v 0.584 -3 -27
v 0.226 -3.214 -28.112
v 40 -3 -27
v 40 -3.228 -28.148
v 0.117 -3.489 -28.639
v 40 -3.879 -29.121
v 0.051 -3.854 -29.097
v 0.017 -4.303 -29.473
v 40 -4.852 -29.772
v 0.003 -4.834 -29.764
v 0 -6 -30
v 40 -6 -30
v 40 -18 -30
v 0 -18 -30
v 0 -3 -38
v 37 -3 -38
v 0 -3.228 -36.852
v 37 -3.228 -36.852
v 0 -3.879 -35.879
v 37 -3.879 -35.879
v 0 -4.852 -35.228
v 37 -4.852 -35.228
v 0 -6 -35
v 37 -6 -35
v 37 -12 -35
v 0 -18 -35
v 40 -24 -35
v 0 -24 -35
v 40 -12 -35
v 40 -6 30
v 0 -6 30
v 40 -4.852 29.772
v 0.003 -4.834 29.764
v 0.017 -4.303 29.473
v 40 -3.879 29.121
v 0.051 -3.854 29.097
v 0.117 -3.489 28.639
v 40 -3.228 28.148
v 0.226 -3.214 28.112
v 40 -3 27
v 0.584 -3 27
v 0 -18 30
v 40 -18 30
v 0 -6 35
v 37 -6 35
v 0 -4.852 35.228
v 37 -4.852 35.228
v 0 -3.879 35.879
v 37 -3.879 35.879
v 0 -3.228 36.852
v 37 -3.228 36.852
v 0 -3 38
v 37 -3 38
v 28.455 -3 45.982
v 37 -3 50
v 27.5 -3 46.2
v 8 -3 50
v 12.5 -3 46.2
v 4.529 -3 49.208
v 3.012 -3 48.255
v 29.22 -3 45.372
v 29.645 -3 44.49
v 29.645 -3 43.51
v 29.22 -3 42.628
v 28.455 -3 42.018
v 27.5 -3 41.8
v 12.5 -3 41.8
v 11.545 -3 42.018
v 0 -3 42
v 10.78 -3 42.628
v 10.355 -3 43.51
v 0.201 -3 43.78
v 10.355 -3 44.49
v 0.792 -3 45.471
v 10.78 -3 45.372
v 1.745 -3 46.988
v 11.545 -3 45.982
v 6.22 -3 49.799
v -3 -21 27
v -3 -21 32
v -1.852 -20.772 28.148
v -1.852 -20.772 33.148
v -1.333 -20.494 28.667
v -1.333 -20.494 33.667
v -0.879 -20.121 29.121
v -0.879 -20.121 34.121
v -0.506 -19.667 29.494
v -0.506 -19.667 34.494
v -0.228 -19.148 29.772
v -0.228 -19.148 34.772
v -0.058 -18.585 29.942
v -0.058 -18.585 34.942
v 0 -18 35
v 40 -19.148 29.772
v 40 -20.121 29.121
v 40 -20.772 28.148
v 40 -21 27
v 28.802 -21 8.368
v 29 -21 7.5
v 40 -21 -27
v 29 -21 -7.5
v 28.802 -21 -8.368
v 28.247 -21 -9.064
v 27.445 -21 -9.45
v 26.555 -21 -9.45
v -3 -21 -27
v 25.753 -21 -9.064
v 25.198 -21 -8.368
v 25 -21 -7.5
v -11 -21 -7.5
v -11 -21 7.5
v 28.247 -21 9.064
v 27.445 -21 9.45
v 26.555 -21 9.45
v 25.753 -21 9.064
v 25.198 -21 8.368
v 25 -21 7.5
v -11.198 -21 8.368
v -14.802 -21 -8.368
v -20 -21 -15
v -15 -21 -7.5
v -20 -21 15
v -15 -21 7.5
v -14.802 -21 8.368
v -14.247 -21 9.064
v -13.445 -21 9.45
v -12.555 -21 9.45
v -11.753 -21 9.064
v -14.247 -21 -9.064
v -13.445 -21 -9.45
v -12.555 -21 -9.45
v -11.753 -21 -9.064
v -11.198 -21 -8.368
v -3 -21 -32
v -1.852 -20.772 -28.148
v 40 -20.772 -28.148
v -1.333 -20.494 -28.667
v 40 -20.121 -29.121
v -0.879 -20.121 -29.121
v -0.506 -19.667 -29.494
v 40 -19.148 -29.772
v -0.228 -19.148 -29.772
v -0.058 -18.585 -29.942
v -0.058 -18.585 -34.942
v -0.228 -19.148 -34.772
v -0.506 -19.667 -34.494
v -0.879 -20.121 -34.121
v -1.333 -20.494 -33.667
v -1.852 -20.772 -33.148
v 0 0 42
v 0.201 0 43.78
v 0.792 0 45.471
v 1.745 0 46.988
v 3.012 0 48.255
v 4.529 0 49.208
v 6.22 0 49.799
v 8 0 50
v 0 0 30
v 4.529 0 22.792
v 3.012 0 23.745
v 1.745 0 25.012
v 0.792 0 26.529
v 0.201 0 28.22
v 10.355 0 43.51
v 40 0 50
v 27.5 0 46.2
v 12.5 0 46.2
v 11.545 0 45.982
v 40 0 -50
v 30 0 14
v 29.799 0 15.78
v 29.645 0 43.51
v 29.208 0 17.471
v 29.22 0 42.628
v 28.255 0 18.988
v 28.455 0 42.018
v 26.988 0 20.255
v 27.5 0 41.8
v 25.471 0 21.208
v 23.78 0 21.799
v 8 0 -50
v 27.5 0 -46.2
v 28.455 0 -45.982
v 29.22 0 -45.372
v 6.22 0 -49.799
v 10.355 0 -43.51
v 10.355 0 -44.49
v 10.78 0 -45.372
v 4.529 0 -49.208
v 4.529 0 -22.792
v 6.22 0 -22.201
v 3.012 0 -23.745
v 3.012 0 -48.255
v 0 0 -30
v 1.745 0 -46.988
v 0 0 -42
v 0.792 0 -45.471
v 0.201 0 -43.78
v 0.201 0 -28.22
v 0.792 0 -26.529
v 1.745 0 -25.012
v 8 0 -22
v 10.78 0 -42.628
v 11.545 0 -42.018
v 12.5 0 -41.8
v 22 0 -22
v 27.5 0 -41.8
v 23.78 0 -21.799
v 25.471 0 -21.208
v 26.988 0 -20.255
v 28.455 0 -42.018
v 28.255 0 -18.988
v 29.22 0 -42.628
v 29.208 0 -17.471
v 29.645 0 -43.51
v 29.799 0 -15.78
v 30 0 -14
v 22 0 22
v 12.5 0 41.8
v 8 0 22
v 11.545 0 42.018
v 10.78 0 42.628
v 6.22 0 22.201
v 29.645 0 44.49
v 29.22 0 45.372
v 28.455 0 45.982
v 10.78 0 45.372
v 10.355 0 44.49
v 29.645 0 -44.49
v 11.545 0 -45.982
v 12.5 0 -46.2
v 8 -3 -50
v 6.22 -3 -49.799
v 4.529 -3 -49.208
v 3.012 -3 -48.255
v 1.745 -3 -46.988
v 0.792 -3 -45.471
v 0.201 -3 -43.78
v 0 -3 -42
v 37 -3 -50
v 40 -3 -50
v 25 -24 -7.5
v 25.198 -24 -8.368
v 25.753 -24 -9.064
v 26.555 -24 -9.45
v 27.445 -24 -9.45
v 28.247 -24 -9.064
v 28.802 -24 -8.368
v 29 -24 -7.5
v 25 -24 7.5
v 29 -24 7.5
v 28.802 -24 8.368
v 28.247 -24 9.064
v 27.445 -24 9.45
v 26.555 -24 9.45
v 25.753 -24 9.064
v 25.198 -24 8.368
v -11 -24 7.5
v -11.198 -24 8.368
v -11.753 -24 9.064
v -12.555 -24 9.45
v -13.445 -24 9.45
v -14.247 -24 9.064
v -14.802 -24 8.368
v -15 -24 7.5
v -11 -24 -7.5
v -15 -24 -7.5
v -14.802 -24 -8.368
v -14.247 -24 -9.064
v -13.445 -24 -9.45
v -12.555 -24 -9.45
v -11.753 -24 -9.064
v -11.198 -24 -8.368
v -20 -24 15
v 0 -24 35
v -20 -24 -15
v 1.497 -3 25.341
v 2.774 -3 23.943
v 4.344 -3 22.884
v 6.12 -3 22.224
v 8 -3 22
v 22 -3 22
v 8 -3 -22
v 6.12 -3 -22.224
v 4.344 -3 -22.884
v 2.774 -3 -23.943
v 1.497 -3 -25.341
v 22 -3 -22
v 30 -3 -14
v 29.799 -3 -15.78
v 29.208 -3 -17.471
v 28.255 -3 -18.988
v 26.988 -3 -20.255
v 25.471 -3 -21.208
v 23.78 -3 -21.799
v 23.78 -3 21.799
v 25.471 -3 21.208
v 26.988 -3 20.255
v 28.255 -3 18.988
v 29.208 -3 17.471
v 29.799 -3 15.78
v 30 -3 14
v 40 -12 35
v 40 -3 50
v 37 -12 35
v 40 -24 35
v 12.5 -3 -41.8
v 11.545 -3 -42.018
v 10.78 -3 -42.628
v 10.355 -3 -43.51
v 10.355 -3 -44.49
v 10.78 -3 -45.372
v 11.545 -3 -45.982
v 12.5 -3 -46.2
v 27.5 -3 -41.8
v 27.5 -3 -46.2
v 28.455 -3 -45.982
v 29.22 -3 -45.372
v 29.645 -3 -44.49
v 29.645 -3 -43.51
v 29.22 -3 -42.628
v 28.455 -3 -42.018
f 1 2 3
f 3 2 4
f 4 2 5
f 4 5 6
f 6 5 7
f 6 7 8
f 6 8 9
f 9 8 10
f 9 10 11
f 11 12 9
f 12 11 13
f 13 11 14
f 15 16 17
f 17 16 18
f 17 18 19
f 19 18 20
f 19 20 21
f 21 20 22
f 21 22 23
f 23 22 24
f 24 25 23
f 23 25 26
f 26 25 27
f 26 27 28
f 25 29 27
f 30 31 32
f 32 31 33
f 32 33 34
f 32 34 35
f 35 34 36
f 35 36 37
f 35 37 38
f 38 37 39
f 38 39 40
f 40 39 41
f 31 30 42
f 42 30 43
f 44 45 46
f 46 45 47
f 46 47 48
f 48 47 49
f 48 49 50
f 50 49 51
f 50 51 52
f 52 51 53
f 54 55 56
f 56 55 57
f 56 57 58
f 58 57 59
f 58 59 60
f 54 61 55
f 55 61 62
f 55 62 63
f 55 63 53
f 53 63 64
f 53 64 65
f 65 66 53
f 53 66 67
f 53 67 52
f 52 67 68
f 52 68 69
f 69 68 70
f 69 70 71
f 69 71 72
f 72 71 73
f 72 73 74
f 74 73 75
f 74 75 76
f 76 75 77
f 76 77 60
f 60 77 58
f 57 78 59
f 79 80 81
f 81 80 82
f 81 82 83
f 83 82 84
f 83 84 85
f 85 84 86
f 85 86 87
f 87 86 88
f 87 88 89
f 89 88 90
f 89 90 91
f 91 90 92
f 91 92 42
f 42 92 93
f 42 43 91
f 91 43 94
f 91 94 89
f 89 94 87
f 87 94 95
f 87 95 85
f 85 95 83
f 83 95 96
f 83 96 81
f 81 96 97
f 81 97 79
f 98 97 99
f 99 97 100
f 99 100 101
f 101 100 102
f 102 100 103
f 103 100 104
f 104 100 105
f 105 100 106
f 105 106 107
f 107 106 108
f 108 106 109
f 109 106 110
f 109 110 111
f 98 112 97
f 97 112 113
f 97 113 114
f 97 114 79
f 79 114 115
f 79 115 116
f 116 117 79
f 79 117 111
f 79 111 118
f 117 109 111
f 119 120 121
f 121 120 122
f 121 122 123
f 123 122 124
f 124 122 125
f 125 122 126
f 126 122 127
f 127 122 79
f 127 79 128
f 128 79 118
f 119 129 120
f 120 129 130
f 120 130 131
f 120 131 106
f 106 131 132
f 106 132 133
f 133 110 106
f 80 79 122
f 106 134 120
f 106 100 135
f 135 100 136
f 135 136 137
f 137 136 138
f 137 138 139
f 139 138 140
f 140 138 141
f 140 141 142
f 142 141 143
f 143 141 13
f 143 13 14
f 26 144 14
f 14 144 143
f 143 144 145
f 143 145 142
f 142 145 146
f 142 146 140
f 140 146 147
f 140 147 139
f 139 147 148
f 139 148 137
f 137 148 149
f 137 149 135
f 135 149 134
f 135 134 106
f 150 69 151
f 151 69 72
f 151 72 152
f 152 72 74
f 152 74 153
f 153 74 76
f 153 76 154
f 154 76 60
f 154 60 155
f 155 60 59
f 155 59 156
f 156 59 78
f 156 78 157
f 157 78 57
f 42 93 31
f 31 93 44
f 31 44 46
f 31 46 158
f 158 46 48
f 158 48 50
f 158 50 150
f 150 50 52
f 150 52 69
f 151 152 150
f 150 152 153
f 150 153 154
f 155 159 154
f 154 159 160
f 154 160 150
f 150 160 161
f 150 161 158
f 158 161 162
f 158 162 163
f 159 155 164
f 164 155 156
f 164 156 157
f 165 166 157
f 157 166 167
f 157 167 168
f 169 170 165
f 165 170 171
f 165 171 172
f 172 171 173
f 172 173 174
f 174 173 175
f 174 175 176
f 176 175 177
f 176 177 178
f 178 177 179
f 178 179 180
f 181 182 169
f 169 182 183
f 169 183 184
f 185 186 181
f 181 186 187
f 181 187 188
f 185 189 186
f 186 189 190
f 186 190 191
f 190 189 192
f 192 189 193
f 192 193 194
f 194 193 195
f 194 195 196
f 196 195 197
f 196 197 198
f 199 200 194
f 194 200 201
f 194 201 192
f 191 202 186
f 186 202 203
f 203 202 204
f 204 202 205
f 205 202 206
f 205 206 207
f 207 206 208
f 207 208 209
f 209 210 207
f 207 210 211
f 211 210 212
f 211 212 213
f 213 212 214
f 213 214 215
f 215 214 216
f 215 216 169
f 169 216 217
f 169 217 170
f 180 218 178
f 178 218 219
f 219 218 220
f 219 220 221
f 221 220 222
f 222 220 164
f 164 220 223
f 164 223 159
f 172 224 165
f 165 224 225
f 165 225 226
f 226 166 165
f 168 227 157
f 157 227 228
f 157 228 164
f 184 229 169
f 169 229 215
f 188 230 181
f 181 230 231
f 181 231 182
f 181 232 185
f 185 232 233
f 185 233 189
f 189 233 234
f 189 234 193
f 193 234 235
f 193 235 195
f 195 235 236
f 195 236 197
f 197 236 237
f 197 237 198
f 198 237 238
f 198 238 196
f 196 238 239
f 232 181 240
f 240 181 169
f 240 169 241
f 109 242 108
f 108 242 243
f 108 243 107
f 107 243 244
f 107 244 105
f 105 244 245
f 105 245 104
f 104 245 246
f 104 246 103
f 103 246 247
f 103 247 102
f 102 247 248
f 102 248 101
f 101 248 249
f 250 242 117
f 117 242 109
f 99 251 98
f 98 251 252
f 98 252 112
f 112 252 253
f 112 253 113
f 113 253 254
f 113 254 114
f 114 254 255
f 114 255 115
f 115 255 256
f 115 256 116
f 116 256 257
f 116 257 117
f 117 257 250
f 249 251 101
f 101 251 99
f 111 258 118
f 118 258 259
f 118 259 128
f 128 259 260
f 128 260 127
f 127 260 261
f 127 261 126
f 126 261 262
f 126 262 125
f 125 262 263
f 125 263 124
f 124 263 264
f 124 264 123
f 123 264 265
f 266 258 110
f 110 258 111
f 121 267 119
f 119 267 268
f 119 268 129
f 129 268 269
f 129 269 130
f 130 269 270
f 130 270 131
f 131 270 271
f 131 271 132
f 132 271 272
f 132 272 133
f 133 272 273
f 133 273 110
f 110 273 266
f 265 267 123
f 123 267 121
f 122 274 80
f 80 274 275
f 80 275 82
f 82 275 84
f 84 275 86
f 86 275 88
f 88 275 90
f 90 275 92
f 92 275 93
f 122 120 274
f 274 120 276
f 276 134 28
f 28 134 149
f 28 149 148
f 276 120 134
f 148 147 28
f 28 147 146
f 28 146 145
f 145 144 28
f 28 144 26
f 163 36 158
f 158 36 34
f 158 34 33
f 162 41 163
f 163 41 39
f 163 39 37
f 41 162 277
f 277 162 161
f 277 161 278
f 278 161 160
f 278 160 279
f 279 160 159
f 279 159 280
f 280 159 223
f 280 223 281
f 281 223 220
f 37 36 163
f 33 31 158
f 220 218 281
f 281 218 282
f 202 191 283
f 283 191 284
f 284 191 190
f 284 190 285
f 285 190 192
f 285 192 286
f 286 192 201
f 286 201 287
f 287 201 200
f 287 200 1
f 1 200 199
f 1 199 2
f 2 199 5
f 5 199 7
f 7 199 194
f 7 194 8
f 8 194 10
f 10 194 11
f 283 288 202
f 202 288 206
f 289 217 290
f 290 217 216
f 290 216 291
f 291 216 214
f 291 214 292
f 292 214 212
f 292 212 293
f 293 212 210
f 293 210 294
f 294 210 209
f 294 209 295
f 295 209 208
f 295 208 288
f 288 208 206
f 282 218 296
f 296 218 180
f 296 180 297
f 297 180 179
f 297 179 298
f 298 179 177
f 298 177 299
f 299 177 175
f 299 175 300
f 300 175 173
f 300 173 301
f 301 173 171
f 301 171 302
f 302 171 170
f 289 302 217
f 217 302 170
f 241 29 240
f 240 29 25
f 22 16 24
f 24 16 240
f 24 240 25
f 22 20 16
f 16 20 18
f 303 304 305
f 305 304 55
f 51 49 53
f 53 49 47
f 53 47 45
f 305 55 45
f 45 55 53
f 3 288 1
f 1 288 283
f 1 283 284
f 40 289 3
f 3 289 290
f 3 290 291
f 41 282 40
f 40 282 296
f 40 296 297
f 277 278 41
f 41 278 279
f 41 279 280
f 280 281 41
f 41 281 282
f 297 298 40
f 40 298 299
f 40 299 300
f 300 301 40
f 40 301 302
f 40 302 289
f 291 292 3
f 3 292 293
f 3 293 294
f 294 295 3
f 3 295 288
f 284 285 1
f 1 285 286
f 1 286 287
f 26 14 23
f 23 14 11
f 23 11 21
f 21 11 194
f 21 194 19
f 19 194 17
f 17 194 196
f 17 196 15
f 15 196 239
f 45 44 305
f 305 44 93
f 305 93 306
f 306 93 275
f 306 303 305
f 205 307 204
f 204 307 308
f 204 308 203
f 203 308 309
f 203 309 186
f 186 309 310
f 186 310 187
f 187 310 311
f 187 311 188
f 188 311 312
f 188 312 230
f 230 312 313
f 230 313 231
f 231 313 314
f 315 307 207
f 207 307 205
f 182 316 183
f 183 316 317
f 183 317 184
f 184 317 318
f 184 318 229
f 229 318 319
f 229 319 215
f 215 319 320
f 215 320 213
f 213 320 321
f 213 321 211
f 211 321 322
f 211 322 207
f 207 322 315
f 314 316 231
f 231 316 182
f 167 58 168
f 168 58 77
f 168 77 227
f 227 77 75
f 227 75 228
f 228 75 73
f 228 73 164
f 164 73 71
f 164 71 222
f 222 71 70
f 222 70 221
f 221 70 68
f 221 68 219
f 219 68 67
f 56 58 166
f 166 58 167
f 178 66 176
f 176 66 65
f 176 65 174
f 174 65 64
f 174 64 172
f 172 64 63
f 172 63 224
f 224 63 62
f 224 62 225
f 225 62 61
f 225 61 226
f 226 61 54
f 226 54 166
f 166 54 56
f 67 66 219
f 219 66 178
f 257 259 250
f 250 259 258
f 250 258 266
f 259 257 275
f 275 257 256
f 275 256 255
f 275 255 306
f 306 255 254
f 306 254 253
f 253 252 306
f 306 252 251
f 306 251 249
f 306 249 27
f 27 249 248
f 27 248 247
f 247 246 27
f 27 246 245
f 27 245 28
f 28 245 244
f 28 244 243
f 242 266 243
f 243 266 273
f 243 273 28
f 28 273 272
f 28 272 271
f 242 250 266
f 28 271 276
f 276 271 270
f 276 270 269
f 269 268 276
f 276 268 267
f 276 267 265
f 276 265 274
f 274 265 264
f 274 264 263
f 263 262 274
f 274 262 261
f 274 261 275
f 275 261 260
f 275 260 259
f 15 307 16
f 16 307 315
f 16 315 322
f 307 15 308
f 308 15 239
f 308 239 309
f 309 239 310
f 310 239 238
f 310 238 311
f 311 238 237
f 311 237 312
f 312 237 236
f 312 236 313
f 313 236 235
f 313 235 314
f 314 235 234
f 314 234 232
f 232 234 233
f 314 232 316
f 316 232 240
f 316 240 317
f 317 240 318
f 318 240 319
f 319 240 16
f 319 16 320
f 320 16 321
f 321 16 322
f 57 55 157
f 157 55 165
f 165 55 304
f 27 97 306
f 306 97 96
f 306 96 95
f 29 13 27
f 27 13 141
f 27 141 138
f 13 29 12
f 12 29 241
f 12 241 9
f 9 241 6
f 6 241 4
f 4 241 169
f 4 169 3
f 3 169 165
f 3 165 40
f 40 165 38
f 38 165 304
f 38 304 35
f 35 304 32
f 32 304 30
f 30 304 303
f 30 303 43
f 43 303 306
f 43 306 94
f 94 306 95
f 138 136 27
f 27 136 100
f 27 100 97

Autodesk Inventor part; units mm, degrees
ref_plane "YZ Plane" through (0, 0, 0) normal (1, 0, 0) x (0, 1, 0)
ref_plane "XZ Plane" through (0, 0, 0) normal (0, 1, 0) x (-1, 0, 0)
ref_plane "XY Plane" through (0, 0, 0) normal (0, 0, 1) x (1, 0, 0)
sketch "Sketch1" plane through (0, 0, 0) normal (0, 1, 0) x (-1, 0, 0)
  line L0 (8, 0) -> (-48, 0) projected
  line L1 (0, -70) -> (0, 70) projected
  line L2 (-40, 50) -> (0, 50)
  line L3 (0, 50) -> (0, -50)
  line L4 (0, -50) -> (-40, -50)
  line L5 (-40, -50) -> (-40, 50)
  point P0 (0, 0)
  point P1 (0, 50)
  dimension "d0" = 40
  dimension "d1" = 100
extrude "Extrusion1" add sketch "Sketch1" against normal blind 3
sketch "Sketch2" plane through (0, -3, 0) normal (0, -1, 0) x (1, 0, 0)
  line L0 (0, -50) -> (40, -50) projected
  line L1 (40, -50) -> (40, 50) projected
  line L2 (40, 50) -> (0, 50) projected
  line L3 (0, 50) -> (0, -50) projected
  line L4 (40, 35) -> (0, 35)
  line L5 (40, -50) -> (40, 50) projected
  line L6 (40, -35) -> (0, -35)
  line L7 (40, 30) -> (0, 30)
  line L8 (40, -30) -> (0, -30)
  point P0 (0, 0)
  dimension "d4" = 15
  dimension "d5" = 15
  dimension "d6" = 5
  dimension "d7" = 5
extrude "Extrusion2" add sketch "Sketch2" along normal blind 21 contours L3 L8 L1 L6 | L3 L4 L1 L7
sketch "Sketch3" plane through (0, 0, 0) normal (0, 1, 0) x (1, 0, 0)
  line L0 (40, 50) -> (0, 50) projected
  line L1 (0, 50) -> (0, -50) projected
  line L2 (0, -50) -> (40, -50) projected
  line L3 (40, -50) -> (40, 50) projected
  line L4 (0, -44) -> (40, -44) construction
  arc A0 (12.5, -41.8) -> (12.5, -46.2) centre (12.5, -44) ccw
  arc A1 (27.5, -46.2) -> (27.5, -41.8) centre (27.5, -44) ccw
  line L5 (12.5, -41.8) -> (27.5, -41.8)
  line L6 (12.5, -46.2) -> (27.5, -46.2)
  line L7 (-8, 0) -> (48, 0) projected
  arc A2 (12.5, 46.2) -> (12.5, 41.8) centre (12.5, 44) ccw
  arc A3 (27.5, 41.8) -> (27.5, 46.2) centre (27.5, 44) ccw
  line L8 (12.5, 41.8) -> (27.5, 41.8)
  line L9 (12.5, 46.2) -> (27.5, 46.2)
  point P0 (0, 0)
  dimension "d10" = 6
  dimension "d11" = 4.4
  dimension "d12" = 4.4
  dimension "d13" = 15
  dimension "d14" = 12.5
extrude "Extrusion3" cut sketch "Sketch3" against normal blind 18 contours L5 A1 L6 A0 | L9 A3 L8 A2
sketch "Sketch4" plane through (0, -24, 0) normal (0, -1, 0) x (1, 0, 0)
  line L0 (40, 35) -> (-20, 35)
  line L1 (-20, 35) -> (-20, -35)
  line L2 (-20, -35) -> (40, -35)
  line L3 (40, -35) -> (40, 35)
  line L4 (40, 30) -> (40, 35) projected
  line L5 (40, 35) -> (0, 35) projected
  line L6 (0, 35) -> (0, 30) projected
  line L7 (0, 30) -> (40, 30) projected
  line L8 (0, -30) -> (0, -35) projected
  line L9 (0, -35) -> (40, -35) projected
  line L10 (40, -35) -> (40, -30) projected
  line L11 (40, -30) -> (0, -30) projected
  line L12 (40, 35) -> (0, 35) projected
  line L13 (0, -35) -> (40, -35) projected
  line L14 (40, -30) -> (40, 30) projected
  line L15 (40, -35) -> (40, -30) projected
  point P0 (0, 0)
  dimension "d18" = 20
extrude "Extrusion4" add sketch "Sketch4" against normal blind 3
sketch "Sketch5" plane through (0, 0, 0) normal (0, 1, 0) x (1, 0, 0)
  arc A0 (27.5, 41.8) -> (27.5, 46.2) centre (27.5, 44) ccw projected
  line L0 (27.5, 41.8) -> (12.5, 41.8) projected
  arc A1 (12.5, 46.2) -> (12.5, 41.8) centre (12.5, 44) ccw projected
  line L1 (12.5, 46.2) -> (27.5, 46.2) projected
  arc A2 (27.5, -46.2) -> (27.5, -41.8) centre (27.5, -44) ccw projected
  line L2 (27.5, -46.2) -> (12.5, -46.2) projected
  arc A3 (12.5, -41.8) -> (12.5, -46.2) centre (12.5, -44) ccw projected
  line L3 (12.5, -41.8) -> (27.5, -41.8) projected
  line L4 (40, 50) -> (0, 50) projected
  line L5 (0, 50) -> (0, -50) projected
  line L6 (0, -50) -> (40, -50) projected
  line L7 (40, -50) -> (40, 50) projected
  line L8 (-9.315, 0) -> (55.8902, 0) projected
  line L9 (40, -30) -> (0, -30) projected
  line L10 (0, 30) -> (40, 30) projected
  line L11 (40, -30) -> (40, 0) construction
  line L12 (40, 30) -> (40, 0) construction
  line L13 (0, -22) -> (30, -22)
  line L14 (30, -22) -> (30, 22)
  line L15 (30, 22) -> (0, 22)
  line L16 (0, 22) -> (0, -22)
  point P0 (0, 0)
  point P1 (0, 22)
  dimension "d30" = 44
  dimension "d31" = 10
extrude "Extrusion5" cut sketch "Sketch5" against normal up to surface (21 mm away) contours L15 L14 L8 L5 | L14 L13 L5 L8
sketch "Sketch6" plane through (40, -3, 50) normal (1, 0, 0) x (0, 0, -1)
  line L0 (0, 3) -> (100, 3) projected
  line L1 (0, 3) -> (0, 0) projected
  line L2 (15, 0) -> (0, 0) projected
  line L3 (15, 0) -> (15, -21) projected
  line L4 (85, -21) -> (15, -21) projected
  line L5 (85, 0) -> (85, -21) projected
  line L6 (100, 0) -> (85, 0) projected
  line L7 (100, 3) -> (100, 0) projected
  line L8 (80, 0) -> (20, 0) projected
  line L9 (80, 0) -> (80, -18) projected
  line L10 (20, -18) -> (80, -18) projected
  line L11 (20, 0) -> (20, -18) projected
  line L12 (85, 0) -> (85, -21)
  line L13 (100, 0) -> (85, 0)
  line L14 (0, 0) -> (15, 0)
  line L15 (3.8, 3) -> (3.8, 0) projected
  line L16 (15, -21) -> (15, 0)
  line L17 (0, 0) -> (15, -9)
  line L18 (15, 0) -> (15, -21) projected
  line L19 (100, 0) -> (85, -9)
  line L20 (85, 0) -> (85, -21) projected
  point P0 (50, 3)
  dimension "d53" = 12
  dimension "d54" = 12
extrude "Extrusion6" add sketch "Sketch6" against normal blind 3 contours L2 L3 L17 | L19 L5 L6
fillet "Fillet1" radius 8 4 edges at (30, -1.5, 22) (30, -1.5, -22) (0, -1.5, -22) (0, -1.5, 22)
chamfer "Chamfer1" distance 20 angle 45 2 edges at (-20, -22.5, -35) (-20, -22.5, 35)
sketch "Sketch9" plane through (0, -21, 0) normal (0, 1, 0) x (1, 0, 0)
  line L0 (-32, 0) -> (52, 0) projected
  line L1 (0, 70) -> (0, -70) projected
  line L2 (-20, 15) -> (-20, -15) projected
  arc A0 (-15, -7.5) -> (-11, -7.5) centre (-13, -7.5) ccw
  arc A1 (-11, 7.5) -> (-15, 7.5) centre (-13, 7.5) ccw
  line L3 (-13, -15) -> (-13, 15) construction
  line L4 (-15, -7.5) -> (-15, 7.5)
  line L5 (-11, -7.5) -> (-11, 7.5)
  arc A2 (25, -7.5) -> (29, -7.5) centre (27, -7.5) ccw
  arc A3 (29, 7.5) -> (25, 7.5) centre (27, 7.5) ccw
  line L6 (25, -7.5) -> (25, 7.5)
  line L7 (29, -7.5) -> (29, 7.5)
  point P0 (0, 0)
  dimension "d36" = 4
  dimension "d37" = 4
  dimension "d38" = 15
  dimension "d40" = 7
  dimension "d41" = 7.5
  dimension "d42" = 4
  dimension "d43" = 4
  dimension "d44" = 15
  dimension "d45" = 40
  dimension "d46" = 7.5
extrude "Extrusion9" cut sketch "Sketch9" against normal blind 10
fillet "Fillet2" radius 8 1 edges at (0, -1.5, -50)
fillet "Fillet3" radius 8 1 edges at (0, -1.5, 50)
fillet "Fillet4" radius 3 8 edges at (20, -21, -30) (0, -21, -32.5) (20, -21, 30) (0, -21, 32.5) (18.5, -3, 35) (20, -3, 30) (18.5, -3, -35) (20, -3, -30)
properties part number "soporte infe"
